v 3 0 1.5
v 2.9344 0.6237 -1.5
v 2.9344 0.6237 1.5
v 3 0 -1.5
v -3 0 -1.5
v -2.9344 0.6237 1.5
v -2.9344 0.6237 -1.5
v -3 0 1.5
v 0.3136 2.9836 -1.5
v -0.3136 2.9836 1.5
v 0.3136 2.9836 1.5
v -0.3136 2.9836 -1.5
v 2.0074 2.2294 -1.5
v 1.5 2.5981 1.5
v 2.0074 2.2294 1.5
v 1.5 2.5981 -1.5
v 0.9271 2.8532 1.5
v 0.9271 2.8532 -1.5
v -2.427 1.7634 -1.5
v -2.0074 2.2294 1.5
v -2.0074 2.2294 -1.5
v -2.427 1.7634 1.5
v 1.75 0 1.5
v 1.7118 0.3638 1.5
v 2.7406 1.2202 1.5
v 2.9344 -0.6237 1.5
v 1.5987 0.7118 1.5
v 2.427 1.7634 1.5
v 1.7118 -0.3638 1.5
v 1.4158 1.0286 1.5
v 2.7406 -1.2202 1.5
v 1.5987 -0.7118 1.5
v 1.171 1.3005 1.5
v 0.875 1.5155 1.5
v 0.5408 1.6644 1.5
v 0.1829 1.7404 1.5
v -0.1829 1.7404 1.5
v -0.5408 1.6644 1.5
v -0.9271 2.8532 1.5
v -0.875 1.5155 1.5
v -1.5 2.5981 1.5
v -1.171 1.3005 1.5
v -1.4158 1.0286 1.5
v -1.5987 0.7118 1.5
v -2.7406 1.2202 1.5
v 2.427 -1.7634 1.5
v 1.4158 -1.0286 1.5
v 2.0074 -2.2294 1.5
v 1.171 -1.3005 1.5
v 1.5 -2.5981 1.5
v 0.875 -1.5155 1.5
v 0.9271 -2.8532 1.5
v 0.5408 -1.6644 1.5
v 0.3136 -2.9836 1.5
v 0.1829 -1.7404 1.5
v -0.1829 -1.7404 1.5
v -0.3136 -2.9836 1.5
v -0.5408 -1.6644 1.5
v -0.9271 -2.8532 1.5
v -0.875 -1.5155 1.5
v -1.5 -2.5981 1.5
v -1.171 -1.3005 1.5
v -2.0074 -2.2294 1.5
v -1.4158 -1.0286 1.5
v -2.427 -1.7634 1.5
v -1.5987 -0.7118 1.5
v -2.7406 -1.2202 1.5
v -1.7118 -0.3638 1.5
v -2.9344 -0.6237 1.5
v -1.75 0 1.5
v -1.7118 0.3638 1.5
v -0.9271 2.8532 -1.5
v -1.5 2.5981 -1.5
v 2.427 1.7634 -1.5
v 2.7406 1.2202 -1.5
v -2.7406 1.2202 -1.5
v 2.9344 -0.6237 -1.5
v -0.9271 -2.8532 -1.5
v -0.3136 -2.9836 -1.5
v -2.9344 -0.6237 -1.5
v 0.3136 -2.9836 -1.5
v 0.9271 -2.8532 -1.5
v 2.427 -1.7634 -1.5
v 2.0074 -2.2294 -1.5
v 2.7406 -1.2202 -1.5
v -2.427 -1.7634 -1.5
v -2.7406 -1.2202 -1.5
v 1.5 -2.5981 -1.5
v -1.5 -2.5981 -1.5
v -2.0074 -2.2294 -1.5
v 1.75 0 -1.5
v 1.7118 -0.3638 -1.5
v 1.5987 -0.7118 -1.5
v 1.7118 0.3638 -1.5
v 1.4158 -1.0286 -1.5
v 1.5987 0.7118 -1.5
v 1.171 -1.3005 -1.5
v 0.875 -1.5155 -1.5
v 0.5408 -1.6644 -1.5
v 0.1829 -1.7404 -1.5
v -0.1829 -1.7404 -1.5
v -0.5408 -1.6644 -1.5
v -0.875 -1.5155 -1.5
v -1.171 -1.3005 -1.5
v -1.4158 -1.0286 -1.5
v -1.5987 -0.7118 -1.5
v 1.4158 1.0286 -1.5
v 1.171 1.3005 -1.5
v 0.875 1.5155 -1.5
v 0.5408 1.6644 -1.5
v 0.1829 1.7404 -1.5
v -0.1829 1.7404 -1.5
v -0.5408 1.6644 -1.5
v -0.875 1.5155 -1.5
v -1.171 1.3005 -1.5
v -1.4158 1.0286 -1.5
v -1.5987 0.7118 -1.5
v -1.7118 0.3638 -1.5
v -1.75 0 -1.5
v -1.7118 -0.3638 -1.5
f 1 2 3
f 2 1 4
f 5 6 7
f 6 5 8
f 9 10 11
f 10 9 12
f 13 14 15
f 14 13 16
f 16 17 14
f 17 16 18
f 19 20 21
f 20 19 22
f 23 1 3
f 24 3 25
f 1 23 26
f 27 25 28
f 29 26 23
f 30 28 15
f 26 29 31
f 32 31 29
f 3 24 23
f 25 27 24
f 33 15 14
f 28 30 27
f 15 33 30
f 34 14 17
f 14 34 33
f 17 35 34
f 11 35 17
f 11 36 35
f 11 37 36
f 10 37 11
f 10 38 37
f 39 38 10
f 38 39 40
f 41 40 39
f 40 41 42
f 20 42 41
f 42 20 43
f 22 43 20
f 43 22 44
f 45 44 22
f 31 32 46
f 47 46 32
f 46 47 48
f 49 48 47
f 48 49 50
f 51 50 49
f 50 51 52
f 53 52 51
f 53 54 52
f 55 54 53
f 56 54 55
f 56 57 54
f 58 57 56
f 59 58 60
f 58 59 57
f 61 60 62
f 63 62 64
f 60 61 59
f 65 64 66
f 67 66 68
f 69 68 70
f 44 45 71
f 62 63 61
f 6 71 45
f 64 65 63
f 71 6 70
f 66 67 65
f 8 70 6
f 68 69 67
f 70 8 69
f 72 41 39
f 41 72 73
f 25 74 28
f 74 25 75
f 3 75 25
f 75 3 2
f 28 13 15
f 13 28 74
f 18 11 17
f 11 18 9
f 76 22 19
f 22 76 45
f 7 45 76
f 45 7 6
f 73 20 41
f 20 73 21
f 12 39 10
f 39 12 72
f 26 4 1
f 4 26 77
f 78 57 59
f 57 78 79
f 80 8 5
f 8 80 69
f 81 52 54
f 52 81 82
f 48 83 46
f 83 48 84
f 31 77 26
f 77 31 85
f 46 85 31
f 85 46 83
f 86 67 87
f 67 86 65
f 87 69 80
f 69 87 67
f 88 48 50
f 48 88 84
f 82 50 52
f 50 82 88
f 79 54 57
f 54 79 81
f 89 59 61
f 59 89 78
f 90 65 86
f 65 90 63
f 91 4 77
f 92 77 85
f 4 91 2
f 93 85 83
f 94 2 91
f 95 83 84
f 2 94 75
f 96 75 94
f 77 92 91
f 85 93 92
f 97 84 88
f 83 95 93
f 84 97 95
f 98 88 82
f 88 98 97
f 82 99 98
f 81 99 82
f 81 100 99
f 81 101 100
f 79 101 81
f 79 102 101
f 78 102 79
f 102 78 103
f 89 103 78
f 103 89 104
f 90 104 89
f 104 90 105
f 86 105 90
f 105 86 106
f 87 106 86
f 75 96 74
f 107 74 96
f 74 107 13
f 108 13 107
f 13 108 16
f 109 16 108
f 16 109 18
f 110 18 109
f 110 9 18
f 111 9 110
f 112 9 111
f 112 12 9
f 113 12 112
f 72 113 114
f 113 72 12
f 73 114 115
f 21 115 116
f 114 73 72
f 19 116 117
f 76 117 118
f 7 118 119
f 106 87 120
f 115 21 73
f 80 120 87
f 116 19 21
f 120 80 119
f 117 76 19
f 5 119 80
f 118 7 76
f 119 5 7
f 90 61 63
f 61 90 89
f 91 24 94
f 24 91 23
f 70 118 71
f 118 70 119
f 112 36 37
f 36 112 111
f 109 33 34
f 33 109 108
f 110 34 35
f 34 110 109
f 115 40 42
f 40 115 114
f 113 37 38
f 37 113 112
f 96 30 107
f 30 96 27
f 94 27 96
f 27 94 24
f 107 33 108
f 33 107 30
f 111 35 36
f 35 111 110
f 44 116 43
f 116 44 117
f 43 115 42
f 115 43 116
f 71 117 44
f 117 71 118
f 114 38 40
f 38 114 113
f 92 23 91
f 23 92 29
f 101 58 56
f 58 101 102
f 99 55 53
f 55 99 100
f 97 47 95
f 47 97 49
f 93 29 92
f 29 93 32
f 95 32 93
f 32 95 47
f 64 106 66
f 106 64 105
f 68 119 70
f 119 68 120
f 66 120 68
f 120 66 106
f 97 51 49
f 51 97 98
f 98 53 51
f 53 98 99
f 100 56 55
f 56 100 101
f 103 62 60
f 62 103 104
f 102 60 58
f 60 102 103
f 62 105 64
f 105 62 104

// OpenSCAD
difference(){
    height = 3;
    cylinder(r=3, h=3, center=true, $fs=0.1);
    cylinder(r=1.75, h=3, center=true, $fs=0.1);
}
